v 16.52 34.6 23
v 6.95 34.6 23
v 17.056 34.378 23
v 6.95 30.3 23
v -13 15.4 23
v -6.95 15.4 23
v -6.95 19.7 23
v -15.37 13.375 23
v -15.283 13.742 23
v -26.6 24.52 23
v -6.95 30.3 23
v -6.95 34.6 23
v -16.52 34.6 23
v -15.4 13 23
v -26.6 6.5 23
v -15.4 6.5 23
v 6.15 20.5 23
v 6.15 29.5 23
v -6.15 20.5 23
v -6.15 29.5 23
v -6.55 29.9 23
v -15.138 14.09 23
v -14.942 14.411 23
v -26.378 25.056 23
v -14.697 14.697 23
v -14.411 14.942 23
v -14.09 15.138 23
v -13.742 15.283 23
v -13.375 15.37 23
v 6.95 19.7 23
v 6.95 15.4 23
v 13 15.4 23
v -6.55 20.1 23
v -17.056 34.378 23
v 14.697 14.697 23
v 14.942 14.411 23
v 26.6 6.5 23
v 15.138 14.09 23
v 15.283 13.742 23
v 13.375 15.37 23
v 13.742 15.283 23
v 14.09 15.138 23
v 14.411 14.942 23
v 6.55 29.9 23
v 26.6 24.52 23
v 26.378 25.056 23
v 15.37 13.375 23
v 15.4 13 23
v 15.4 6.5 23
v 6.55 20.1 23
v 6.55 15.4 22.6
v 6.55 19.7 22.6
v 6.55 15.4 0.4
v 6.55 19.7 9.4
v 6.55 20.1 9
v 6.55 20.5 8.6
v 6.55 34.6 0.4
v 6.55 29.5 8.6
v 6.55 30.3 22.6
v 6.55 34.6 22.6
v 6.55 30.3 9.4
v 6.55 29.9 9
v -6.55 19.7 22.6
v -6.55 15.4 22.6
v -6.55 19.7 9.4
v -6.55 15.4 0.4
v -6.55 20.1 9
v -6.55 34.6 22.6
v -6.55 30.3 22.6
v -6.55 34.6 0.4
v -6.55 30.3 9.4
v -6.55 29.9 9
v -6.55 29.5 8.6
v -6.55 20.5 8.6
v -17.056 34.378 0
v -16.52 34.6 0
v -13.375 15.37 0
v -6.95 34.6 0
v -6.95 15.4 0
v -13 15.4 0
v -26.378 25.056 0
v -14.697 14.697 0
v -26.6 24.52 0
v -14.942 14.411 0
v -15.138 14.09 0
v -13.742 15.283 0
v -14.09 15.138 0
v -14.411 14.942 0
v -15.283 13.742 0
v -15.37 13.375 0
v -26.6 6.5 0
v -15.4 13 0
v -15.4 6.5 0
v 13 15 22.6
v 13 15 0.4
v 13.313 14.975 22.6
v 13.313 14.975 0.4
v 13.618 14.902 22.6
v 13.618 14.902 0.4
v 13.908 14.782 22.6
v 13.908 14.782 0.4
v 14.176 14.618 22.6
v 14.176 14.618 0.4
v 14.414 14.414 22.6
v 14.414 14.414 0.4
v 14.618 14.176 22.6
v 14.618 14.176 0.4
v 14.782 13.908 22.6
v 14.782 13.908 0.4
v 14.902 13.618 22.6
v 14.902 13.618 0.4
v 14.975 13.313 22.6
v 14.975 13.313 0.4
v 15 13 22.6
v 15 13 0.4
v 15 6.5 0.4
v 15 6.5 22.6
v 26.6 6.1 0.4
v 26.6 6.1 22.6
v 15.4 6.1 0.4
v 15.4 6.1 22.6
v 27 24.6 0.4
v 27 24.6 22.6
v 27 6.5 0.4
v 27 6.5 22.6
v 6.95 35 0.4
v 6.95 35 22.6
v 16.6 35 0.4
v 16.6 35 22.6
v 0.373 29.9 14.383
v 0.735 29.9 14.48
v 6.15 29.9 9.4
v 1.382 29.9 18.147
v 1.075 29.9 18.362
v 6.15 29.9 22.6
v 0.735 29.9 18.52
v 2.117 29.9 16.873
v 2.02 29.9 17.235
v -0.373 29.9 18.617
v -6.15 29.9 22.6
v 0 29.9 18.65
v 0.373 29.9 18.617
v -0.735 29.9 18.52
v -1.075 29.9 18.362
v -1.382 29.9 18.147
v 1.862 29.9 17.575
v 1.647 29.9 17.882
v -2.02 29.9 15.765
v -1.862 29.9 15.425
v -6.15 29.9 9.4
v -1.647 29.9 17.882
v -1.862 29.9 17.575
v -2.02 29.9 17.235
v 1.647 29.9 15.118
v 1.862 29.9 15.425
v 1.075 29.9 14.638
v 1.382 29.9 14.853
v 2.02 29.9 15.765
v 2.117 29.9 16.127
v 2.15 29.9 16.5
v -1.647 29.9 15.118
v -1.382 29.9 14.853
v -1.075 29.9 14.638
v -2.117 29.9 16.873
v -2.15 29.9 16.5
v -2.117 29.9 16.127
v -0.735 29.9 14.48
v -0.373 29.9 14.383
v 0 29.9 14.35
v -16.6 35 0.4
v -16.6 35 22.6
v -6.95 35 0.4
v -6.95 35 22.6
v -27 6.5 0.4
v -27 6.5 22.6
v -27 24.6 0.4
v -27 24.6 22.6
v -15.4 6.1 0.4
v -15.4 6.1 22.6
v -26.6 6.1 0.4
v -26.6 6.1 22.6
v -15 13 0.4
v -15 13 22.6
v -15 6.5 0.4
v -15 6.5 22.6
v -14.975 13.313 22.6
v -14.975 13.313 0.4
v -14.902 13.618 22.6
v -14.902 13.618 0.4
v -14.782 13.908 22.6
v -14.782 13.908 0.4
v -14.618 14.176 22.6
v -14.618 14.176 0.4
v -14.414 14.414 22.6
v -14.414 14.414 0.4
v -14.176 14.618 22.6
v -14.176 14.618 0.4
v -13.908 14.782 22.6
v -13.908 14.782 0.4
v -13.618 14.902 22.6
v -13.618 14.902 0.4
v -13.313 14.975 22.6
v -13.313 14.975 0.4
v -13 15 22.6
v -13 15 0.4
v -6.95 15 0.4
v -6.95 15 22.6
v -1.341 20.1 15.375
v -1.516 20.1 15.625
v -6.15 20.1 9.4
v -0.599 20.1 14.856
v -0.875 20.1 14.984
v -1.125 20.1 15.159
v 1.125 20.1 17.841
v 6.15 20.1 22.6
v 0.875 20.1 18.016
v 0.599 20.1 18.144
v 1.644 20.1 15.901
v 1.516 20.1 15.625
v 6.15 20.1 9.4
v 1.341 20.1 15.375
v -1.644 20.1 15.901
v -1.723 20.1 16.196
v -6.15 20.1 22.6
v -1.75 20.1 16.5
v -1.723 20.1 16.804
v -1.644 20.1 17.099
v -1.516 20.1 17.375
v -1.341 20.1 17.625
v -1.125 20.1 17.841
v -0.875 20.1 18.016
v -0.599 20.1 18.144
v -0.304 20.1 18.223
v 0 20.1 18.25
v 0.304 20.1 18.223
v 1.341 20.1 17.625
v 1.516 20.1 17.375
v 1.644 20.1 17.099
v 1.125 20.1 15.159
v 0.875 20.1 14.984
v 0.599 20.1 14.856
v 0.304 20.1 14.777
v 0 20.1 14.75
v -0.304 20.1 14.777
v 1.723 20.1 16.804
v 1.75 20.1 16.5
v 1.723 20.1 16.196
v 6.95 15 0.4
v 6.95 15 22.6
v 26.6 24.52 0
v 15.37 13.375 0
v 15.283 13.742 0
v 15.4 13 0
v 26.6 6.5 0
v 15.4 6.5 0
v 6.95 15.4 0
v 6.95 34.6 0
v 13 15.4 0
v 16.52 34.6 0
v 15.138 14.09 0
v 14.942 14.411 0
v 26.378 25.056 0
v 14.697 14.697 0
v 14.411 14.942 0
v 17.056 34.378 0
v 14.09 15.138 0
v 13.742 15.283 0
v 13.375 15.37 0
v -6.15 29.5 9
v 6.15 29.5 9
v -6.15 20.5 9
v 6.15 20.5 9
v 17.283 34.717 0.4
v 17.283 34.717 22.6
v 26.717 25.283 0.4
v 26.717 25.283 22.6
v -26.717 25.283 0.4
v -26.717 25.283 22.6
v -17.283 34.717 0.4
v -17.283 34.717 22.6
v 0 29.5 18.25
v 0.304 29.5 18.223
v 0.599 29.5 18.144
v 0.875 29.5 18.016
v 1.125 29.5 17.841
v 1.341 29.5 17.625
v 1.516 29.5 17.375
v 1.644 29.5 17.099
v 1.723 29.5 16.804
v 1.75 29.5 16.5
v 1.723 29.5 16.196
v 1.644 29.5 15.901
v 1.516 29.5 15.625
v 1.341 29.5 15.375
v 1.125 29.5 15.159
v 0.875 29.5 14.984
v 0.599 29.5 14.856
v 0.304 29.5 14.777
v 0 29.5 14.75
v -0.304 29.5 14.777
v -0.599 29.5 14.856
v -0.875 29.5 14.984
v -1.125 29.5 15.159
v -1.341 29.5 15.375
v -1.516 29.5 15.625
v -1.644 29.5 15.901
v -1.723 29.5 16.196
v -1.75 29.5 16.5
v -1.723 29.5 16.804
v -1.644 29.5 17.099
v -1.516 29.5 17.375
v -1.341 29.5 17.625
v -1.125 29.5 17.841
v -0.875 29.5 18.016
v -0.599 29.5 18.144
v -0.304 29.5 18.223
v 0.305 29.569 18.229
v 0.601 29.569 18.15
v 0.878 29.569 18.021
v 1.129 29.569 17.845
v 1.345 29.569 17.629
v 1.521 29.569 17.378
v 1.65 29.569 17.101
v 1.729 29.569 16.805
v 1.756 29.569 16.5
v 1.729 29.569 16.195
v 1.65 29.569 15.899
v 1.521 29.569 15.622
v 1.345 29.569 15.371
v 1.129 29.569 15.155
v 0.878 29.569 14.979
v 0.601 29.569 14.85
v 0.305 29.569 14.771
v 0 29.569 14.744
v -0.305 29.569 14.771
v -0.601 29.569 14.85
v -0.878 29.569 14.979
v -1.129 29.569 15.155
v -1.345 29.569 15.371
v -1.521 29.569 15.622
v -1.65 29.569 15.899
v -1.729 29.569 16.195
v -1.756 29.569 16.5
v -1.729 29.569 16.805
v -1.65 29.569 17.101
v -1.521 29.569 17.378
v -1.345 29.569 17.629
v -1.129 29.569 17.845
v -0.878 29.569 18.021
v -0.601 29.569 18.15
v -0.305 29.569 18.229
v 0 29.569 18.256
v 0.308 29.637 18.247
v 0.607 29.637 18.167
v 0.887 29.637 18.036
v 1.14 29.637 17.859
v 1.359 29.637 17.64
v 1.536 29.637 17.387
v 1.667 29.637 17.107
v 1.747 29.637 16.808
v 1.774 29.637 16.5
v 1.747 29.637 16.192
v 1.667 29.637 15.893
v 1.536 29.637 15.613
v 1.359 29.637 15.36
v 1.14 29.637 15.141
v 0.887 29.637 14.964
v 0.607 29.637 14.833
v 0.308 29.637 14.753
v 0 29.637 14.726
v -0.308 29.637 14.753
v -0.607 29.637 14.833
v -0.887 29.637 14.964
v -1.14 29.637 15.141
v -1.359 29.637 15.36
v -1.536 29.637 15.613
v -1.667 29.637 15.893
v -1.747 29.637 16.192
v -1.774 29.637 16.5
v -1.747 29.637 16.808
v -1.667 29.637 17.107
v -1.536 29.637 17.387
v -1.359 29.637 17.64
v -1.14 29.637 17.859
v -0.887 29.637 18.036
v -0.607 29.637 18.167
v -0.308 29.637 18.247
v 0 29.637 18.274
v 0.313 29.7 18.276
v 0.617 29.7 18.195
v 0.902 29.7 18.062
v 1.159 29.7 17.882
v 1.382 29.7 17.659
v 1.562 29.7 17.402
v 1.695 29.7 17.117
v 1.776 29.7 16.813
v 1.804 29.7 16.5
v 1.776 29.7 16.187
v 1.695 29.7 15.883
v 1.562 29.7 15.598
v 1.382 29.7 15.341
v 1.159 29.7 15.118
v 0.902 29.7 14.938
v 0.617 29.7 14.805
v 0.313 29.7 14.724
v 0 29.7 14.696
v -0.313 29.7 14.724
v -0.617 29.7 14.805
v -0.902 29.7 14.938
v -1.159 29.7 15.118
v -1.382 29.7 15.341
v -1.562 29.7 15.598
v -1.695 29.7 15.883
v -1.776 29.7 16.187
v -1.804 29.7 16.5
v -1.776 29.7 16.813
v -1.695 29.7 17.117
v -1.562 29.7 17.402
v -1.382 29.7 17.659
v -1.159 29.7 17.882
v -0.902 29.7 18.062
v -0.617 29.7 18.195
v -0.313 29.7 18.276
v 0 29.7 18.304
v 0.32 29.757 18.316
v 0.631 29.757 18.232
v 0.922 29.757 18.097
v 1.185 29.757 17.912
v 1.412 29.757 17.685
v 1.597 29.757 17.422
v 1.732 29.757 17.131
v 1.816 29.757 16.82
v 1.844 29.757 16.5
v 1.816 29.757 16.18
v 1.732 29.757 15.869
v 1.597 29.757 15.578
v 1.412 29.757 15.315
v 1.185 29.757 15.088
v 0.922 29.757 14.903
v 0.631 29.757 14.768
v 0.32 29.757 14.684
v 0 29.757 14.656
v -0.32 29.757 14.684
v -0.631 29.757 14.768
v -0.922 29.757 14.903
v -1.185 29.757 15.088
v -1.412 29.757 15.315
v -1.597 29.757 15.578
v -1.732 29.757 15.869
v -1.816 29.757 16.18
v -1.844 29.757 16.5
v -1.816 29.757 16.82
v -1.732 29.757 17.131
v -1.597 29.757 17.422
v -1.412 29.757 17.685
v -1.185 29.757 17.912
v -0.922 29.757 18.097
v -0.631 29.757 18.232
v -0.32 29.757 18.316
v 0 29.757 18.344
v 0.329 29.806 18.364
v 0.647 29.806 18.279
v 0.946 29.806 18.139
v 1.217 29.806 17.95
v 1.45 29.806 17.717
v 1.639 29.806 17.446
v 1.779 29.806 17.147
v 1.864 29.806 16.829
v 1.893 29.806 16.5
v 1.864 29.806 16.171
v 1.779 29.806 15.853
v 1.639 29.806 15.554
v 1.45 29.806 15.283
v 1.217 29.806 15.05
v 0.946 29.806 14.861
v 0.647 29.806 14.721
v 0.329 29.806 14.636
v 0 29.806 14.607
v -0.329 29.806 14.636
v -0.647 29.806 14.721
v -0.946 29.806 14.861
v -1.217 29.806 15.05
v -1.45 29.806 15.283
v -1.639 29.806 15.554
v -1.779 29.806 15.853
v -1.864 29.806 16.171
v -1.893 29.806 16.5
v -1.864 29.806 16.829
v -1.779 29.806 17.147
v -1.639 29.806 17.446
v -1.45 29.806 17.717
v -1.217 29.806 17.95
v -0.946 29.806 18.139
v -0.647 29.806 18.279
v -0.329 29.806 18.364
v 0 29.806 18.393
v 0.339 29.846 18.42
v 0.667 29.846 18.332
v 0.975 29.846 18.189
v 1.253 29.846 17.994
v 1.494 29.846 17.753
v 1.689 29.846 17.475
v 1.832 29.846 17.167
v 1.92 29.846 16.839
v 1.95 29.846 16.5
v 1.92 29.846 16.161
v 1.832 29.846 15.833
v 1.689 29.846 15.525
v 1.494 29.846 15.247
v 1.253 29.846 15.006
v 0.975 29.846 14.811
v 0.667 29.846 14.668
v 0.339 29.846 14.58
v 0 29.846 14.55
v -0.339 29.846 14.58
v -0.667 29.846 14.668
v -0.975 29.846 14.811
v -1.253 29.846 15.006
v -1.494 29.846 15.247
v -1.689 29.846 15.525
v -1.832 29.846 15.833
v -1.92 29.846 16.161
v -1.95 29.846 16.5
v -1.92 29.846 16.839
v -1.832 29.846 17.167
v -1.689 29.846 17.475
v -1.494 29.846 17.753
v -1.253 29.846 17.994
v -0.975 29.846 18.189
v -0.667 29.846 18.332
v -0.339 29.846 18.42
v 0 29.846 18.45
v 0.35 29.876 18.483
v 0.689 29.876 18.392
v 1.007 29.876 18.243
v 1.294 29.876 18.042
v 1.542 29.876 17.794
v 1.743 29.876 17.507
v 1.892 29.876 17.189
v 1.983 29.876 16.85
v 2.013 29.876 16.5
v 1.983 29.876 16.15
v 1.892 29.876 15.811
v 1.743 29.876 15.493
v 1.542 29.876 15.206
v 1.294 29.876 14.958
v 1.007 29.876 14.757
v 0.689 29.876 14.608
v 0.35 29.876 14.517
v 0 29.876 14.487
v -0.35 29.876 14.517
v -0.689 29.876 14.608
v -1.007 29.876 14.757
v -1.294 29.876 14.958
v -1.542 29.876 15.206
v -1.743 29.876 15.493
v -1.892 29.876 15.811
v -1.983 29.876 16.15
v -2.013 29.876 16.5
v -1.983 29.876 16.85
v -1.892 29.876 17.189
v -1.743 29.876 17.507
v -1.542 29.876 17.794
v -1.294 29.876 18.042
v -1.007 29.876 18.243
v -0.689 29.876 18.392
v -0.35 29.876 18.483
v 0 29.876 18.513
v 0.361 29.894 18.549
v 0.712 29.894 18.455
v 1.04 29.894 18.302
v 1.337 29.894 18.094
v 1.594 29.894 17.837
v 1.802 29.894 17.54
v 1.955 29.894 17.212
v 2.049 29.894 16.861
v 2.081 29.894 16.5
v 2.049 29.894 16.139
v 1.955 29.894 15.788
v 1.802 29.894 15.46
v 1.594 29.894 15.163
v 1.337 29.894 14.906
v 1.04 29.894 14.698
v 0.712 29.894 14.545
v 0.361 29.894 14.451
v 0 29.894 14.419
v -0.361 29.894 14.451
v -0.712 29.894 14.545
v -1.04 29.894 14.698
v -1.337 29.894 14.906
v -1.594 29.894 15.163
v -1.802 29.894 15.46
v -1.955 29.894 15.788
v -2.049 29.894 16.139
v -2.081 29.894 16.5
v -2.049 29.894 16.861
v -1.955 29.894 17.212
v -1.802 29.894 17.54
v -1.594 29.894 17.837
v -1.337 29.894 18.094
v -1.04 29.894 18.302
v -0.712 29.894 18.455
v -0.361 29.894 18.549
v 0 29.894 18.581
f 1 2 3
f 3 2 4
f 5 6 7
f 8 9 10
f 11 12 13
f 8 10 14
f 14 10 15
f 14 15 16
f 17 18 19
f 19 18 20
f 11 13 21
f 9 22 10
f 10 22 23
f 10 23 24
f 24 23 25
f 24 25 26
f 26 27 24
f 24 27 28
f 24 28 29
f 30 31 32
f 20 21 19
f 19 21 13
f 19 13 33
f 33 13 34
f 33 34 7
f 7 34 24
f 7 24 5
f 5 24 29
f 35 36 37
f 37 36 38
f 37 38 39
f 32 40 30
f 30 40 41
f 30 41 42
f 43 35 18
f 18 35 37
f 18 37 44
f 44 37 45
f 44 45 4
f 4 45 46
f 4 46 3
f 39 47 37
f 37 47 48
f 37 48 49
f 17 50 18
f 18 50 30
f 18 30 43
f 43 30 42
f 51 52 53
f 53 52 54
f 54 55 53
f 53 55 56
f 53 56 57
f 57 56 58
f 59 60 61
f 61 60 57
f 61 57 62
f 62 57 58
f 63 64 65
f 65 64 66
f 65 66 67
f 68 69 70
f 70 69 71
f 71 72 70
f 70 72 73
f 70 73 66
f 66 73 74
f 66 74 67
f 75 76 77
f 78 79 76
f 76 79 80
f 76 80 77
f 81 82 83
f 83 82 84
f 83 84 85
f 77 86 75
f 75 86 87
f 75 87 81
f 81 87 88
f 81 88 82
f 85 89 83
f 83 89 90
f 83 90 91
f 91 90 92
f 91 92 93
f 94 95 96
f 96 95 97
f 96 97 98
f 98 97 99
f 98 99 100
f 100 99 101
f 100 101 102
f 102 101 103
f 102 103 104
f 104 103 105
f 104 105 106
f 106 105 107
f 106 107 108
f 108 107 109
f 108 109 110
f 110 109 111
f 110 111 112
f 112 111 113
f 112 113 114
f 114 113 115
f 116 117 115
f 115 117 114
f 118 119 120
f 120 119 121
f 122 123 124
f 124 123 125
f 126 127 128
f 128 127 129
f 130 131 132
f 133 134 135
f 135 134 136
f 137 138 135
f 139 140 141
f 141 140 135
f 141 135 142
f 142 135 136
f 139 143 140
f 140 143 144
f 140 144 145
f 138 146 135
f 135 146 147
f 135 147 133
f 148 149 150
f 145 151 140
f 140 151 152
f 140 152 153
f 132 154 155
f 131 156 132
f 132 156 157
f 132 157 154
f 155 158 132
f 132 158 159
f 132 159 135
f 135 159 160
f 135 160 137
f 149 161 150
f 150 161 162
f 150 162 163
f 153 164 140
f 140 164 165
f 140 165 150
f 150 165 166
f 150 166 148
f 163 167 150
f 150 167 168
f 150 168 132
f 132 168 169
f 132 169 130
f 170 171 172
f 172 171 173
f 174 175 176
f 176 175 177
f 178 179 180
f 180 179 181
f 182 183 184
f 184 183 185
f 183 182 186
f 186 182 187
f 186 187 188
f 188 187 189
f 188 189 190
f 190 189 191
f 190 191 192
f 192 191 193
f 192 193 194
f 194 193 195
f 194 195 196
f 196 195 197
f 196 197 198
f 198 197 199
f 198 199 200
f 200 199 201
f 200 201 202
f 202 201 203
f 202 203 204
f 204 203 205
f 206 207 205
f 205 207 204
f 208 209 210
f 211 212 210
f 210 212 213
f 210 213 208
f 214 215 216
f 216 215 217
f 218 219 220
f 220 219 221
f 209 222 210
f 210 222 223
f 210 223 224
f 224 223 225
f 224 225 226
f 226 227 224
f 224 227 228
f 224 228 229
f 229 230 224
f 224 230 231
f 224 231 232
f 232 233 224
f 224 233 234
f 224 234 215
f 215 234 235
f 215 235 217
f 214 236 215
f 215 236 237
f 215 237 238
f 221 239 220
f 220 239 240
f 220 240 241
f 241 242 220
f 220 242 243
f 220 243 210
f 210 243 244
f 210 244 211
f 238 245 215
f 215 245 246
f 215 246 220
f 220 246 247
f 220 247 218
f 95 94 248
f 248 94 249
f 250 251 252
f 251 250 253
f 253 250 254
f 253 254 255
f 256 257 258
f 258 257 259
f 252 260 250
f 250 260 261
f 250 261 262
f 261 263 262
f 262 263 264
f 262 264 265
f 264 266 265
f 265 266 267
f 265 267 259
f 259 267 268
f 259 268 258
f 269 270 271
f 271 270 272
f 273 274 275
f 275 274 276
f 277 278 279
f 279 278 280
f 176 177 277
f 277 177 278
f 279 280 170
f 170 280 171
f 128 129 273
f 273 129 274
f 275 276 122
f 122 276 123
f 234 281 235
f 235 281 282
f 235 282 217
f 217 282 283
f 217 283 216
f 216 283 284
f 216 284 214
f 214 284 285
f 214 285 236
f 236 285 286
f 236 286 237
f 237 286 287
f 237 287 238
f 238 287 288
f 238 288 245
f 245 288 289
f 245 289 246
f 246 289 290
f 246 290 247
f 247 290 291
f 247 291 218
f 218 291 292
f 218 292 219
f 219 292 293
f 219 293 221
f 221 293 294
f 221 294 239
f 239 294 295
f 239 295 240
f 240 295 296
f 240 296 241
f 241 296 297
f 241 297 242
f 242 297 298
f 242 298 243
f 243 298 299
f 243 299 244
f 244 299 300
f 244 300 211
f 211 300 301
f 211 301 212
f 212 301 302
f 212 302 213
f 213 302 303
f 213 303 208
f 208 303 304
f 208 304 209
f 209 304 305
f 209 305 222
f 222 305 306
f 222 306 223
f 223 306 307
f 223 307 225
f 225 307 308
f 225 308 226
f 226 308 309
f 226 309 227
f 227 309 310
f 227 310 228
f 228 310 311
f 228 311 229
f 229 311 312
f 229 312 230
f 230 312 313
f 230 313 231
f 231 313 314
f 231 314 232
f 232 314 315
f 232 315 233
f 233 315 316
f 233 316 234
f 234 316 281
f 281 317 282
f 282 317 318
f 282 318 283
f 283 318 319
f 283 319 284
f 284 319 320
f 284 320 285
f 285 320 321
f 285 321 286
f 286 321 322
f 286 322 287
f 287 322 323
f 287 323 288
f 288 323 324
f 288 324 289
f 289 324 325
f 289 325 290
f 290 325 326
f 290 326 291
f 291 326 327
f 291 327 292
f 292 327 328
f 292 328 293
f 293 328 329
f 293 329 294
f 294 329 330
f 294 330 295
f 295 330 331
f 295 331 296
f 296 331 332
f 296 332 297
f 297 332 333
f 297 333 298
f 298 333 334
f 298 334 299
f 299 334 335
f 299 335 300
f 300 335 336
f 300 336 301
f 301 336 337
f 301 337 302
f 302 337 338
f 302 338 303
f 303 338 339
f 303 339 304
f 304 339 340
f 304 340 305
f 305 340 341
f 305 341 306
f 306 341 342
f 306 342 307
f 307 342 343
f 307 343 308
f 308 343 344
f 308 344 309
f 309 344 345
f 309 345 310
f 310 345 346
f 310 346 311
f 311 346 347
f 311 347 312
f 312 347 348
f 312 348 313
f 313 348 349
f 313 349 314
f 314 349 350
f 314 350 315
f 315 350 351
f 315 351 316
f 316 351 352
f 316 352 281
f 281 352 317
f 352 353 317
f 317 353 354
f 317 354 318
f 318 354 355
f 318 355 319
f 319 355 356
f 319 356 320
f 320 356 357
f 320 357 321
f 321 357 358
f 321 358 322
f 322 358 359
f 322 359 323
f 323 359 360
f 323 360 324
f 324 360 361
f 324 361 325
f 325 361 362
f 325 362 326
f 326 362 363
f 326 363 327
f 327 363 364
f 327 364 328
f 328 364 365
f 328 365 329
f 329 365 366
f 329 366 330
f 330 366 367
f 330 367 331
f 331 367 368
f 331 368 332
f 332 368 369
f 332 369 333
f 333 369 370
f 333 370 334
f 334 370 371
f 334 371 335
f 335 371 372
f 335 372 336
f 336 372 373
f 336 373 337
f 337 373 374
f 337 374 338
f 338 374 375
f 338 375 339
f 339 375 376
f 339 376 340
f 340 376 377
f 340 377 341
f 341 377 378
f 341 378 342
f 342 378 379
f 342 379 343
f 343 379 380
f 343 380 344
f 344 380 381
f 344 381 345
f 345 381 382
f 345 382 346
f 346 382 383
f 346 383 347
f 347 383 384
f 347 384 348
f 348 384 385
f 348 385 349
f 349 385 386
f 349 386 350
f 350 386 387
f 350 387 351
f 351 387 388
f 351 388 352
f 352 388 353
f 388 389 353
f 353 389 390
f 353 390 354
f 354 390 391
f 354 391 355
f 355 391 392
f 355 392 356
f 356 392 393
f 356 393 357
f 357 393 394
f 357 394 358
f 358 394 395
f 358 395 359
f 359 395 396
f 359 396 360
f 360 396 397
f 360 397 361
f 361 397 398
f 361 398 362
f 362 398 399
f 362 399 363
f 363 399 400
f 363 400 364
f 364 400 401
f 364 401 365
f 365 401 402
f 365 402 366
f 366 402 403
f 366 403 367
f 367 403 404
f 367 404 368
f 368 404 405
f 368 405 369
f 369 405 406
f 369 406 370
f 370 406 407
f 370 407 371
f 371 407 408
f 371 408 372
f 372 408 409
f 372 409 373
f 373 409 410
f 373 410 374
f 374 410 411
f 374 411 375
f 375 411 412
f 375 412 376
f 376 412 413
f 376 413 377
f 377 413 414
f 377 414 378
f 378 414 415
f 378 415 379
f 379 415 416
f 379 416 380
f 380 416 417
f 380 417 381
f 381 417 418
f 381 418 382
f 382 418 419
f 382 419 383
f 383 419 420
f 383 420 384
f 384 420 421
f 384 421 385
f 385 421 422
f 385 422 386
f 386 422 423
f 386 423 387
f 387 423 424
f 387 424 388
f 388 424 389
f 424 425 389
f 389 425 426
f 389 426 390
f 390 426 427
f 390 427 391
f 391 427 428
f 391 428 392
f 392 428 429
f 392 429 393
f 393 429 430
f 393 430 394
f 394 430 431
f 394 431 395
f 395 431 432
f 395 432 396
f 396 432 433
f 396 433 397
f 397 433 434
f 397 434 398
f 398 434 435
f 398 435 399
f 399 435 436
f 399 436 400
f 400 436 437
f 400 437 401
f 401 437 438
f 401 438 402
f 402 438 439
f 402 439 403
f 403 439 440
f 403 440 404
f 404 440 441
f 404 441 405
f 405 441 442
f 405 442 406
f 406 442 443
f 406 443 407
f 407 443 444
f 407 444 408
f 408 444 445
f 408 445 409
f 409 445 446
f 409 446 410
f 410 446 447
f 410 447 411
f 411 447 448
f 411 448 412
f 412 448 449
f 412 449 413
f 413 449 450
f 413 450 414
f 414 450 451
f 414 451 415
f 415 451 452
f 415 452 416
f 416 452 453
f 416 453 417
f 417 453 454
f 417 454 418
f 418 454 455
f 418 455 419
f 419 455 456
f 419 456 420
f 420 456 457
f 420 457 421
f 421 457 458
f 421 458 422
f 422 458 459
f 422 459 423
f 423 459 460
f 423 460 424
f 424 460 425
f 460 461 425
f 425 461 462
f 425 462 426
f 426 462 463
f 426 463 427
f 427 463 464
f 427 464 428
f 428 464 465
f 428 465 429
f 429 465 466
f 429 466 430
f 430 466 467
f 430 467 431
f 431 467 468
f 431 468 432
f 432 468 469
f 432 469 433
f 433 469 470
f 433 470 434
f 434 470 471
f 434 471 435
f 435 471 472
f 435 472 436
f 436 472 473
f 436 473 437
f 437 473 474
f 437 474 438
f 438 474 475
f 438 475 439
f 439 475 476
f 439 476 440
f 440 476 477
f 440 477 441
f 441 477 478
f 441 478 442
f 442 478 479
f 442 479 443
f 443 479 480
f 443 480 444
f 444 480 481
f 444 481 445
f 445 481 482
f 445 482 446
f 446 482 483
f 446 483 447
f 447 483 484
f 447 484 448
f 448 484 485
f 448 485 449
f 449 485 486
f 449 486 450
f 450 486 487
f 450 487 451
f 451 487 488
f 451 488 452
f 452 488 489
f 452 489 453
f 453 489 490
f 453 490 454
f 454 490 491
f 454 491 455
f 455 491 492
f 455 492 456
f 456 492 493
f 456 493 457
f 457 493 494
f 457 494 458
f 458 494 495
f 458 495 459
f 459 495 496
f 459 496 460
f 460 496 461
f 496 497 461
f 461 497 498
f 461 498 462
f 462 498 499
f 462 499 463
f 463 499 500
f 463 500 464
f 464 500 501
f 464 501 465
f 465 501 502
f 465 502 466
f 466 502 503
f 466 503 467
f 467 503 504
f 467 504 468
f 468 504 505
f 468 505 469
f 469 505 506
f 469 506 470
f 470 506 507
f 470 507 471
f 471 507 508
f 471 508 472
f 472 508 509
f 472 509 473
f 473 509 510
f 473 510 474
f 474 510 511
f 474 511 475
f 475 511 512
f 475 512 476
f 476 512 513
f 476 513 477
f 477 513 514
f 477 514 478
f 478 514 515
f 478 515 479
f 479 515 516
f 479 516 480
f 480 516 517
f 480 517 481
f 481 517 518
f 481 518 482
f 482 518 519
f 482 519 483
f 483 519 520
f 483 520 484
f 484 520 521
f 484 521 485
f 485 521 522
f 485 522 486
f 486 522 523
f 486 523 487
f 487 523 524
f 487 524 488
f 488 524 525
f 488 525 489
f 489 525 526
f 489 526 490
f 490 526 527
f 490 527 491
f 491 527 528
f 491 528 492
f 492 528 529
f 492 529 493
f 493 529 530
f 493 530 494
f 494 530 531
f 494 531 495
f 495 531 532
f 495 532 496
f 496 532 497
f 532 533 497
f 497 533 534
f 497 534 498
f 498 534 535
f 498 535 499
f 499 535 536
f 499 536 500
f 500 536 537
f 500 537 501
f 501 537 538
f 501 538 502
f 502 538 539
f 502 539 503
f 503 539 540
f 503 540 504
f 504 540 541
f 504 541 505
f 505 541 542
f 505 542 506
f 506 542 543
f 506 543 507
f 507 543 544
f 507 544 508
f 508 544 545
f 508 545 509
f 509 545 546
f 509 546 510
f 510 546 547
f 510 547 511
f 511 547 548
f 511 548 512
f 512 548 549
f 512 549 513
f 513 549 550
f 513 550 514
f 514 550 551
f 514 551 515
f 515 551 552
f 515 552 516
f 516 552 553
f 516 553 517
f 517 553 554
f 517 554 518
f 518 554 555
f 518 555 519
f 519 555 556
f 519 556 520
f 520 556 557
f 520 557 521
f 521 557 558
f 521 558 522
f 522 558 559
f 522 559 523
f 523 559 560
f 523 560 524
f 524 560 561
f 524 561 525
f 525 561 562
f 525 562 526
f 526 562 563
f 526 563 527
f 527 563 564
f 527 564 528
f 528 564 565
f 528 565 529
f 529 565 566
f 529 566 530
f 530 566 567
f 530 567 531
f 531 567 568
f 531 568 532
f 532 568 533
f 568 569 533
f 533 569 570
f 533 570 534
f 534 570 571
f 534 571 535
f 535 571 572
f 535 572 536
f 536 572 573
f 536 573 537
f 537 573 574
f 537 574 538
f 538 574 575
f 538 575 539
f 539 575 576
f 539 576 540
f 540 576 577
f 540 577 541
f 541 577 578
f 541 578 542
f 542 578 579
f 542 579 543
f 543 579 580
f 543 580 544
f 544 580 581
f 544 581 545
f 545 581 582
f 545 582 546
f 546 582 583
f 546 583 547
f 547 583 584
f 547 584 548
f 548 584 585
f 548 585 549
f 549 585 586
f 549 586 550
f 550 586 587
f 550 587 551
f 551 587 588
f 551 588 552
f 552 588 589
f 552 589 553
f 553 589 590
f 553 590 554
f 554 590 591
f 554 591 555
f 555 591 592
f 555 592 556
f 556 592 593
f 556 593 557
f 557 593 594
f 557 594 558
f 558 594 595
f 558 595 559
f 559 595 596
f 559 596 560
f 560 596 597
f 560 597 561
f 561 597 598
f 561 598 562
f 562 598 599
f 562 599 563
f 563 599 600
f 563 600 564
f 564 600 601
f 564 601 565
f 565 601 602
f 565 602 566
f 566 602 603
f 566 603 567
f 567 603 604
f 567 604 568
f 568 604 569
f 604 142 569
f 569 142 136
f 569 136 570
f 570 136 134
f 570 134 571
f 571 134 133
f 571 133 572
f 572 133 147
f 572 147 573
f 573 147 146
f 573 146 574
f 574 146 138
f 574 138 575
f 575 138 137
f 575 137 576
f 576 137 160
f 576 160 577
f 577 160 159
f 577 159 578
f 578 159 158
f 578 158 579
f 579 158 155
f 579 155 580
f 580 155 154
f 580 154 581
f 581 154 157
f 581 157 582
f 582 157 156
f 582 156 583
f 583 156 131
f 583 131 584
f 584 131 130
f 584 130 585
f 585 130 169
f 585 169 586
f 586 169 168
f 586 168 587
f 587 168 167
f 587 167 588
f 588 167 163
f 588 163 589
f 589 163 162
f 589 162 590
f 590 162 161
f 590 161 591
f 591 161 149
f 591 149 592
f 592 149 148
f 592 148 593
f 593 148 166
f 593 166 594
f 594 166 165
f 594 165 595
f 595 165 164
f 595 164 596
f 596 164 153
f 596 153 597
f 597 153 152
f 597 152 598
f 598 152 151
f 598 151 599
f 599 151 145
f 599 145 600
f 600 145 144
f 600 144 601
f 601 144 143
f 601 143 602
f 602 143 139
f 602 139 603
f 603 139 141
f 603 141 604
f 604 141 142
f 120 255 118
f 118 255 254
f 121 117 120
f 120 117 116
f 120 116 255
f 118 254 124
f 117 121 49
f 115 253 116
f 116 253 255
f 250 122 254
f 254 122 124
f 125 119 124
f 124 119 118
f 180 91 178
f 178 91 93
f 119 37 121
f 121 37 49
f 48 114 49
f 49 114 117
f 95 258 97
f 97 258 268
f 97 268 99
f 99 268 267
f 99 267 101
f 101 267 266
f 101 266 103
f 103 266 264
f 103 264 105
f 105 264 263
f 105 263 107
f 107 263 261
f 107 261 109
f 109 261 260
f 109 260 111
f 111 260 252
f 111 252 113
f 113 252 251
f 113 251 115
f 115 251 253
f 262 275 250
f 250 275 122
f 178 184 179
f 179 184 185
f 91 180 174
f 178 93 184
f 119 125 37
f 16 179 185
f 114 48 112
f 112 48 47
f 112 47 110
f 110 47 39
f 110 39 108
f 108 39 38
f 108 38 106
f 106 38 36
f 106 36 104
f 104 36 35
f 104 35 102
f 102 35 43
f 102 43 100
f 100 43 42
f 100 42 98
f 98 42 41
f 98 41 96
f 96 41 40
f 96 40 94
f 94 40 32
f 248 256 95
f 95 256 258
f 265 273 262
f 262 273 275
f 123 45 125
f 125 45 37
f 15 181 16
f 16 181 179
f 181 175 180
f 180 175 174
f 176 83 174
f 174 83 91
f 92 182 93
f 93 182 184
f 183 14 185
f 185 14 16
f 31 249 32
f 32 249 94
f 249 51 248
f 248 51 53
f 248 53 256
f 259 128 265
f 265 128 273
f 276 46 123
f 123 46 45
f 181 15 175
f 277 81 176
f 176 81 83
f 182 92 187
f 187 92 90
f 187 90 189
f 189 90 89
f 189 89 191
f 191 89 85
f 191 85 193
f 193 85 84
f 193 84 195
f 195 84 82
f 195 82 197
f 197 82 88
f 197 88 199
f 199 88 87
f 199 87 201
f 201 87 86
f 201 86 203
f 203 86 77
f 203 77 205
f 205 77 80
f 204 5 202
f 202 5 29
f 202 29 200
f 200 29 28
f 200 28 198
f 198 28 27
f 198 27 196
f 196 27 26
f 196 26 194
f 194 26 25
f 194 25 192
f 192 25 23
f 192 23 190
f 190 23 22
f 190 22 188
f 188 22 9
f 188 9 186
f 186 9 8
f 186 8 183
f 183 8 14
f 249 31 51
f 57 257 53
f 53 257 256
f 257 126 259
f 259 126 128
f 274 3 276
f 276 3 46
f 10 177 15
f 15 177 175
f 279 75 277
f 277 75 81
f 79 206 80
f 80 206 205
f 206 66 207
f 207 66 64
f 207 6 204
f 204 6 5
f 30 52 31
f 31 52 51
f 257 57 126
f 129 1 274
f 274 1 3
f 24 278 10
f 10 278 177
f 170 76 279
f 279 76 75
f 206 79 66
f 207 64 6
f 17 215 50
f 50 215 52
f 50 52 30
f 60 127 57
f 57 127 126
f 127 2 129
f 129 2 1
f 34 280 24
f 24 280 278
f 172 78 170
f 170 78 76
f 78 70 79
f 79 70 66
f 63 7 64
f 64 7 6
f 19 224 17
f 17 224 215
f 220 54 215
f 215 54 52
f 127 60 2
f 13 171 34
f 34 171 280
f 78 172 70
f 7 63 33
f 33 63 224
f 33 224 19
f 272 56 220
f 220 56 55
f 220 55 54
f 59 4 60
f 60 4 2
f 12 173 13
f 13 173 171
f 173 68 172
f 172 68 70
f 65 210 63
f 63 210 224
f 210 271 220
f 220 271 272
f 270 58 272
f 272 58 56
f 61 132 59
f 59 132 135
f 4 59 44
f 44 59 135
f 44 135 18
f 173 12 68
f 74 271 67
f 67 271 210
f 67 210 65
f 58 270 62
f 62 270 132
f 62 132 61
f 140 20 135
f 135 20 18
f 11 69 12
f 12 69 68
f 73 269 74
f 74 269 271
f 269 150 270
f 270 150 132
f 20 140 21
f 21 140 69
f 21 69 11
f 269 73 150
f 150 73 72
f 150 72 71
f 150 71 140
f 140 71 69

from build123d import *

# Parameters (mm, degrees)
BOSS_EXTRUDE1_DEPTH = 23
SKETCH1_4_W         = 13.1
SKETCH1_4_H         = 9.8
CUT_EXTRUDE1_DEPTH  = 9
CHAMFER4_SIZE       = 10
CHAMFER6_SIZE       = 0.4
CUT_EXTRUDE5_DEPTH  = 43.713463919
FILLET1_R           = 0.4
CHAMFER7_SIZE       = 0.4


with BuildPart() as part:
    # Sketch1 → Boss-Extrude1 (new body)
    with BuildSketch(Plane.XY):
        with BuildLine():
            Line((-27, 6.1), (-15, 6.1))
            Line((-15, 6.1), (-15, 13))
            ThreePointArc((-15, 13), (-14.414213562, 14.414213562), (-13, 15))
            Line((-13, 15), (-6.55, 15))
            Line((-6.55, 15), (-6.55, 20.1))
            Line((-6.55, 20.1), (6.55, 20.1))
            Line((6.55, 20.1), (6.55, 15))
            Line((6.55, 15), (13, 15))
            ThreePointArc((13, 15), (14.414213562, 14.414213562), (15, 13))
            Line((15, 13), (15, 6.1))
            Line((15, 6.1), (27, 6.1))
            Line((27, 6.1), (27, 35))
            Line((27, 35), (6.55, 35))
            Line((6.55, 35), (6.55, 29.9))
            Line((6.55, 29.9), (-6.55, 29.9))
            Line((-6.55, 29.9), (-6.55, 35))
            Line((-6.55, 35), (-27, 35))
            Line((-27, 35), (-27, 6.1))
        make_face()
    extrude(amount=BOSS_EXTRUDE1_DEPTH)

    # Sketch1<4> → Cut-Extrude1 (cut)
    with BuildSketch(Plane.XY):
        with Locations((0, 25)):
            Rectangle(SKETCH1_4_W, SKETCH1_4_H)
    extrude(amount=CUT_EXTRUDE1_DEPTH, mode=Mode.SUBTRACT)

    # Chamfer4
    chamfer4_edges = [part.edges().sort_by_distance(p)[0] for p in [
        (-27, 35, 11.5),
        (27, 35, 11.5),
    ]]
    chamfer(chamfer4_edges, length=CHAMFER4_SIZE)

    # Chamfer6
    chamfer6_edges = [part.edges().sort_by_distance(p)[0] for p in [
        (17, 35, 11.5),
        (27, 25, 11.5),
        (-27, 25, 11.5),
        (-17, 35, 11.5),
    ]]
    chamfer(chamfer6_edges, length=CHAMFER6_SIZE)

    # Sketch6 → Cut-Extrude5 (cut, through all)
    with BuildSketch(Plane(origin=(0, 29.9, 0), x_dir=(1, 0, 0), z_dir=(0, 1, 0))):
        with BuildLine():
            ThreePointArc((1.75, -16.5), (1.237436867, -15.262563133), (0, -14.75))
            Line((0, -14.75), (0, -18.25))
            ThreePointArc((0, -18.25), (1.237436867, -17.737436867), (1.75, -16.5))
        make_face()
        with BuildLine():
            Line((0, -18.25), (0, -14.75))
            ThreePointArc((0, -14.75), (-1.75, -16.5), (0, -18.25))
        make_face()
    extrude(amount=-CUT_EXTRUDE5_DEPTH, mode=Mode.SUBTRACT)

    # Fillet1
    fillet1_edges = [part.edges().sort_by_distance(p)[0] for p in [
        (0, 29.9, 14.75),
    ]]
    fillet(fillet1_edges, radius=FILLET1_R)

    # Chamfer7
    chamfer7_edges = [part.edges().sort_by_distance(p)[0] for p in [
        (15, 9.55, 23),
        (16.941421356, 34.858578644, 0),
        (21, 6.1, 23),
        (27, 15.35, 23),
        (9.775, 15, 0),
        (6.55, 25, 0),
        (-6.55, 25, 0),
        (-9.775, 15, 0),
        (-14.414213562, 14.414213562, 0),
        (-15, 9.55, 0),
        (-21, 6.1, 0),
        (-11.575, 35, 0),
        (27, 15.35, 0),
        (21, 6.1, 0),
        (15, 9.55, 0),
        (14.414213562, 14.414213562, 0),
        (6.55, 32.45, 23),
        (6.55, 15, 11.5),
        (6.55, 20.1, 16),
        (-6.55, 20.1, 16),
        (-6.55, 15, 11.5),
        (-15, 6.1, 11.5),
        (-27, 6.1, 11.5),
        (-6.55, 35, 11.5),
        (-6.55, 29.9, 16),
        (6.55, 29.9, 16),
        (6.55, 35, 11.5),
        (27, 6.1, 11.5),
        (15, 6.1, 11.5),
        (0, 29.9, 23),
        (-6.55, 32.45, 23),
        (-11.575, 35, 23),
        (14.414213562, 14.414213562, 23),
        (-21, 6.1, 23),
        (0, 29.9, 9),
        (6.55, 25, 9),
        (-6.55, 25, 9),
        (0, 20.1, 9),
        (-15, 9.55, 23),
        (-14.414213562, 14.414213562, 23),
        (-9.775, 15, 23),
        (-6.55, 17.55, 23),
        (0, 20.1, 23),
        (-27, 15.35, 23),
        (-27, 15.35, 0),
        (6.55, 17.55, 23),
        (-22, 30, 0),
        (-16.941421356, 34.858578644, 0),
        (-26.858578644, 24.941421356, 0),
        (-22, 30, 23),
        (22, 30, 23),
        (9.775, 15, 23),
        (11.575, 35, 23),
        (26.858578644, 24.941421356, 23),
        (16.941421356, 34.858578644, 23),
        (-16.941421356, 34.858578644, 23),
        (-26.858578644, 24.941421356, 23),
        (11.575, 35, 0),
        (22, 30, 0),
        (26.858578644, 24.941421356, 0),
    ]]
    chamfer(chamfer7_edges, length=CHAMFER7_SIZE)


solid = part.part
